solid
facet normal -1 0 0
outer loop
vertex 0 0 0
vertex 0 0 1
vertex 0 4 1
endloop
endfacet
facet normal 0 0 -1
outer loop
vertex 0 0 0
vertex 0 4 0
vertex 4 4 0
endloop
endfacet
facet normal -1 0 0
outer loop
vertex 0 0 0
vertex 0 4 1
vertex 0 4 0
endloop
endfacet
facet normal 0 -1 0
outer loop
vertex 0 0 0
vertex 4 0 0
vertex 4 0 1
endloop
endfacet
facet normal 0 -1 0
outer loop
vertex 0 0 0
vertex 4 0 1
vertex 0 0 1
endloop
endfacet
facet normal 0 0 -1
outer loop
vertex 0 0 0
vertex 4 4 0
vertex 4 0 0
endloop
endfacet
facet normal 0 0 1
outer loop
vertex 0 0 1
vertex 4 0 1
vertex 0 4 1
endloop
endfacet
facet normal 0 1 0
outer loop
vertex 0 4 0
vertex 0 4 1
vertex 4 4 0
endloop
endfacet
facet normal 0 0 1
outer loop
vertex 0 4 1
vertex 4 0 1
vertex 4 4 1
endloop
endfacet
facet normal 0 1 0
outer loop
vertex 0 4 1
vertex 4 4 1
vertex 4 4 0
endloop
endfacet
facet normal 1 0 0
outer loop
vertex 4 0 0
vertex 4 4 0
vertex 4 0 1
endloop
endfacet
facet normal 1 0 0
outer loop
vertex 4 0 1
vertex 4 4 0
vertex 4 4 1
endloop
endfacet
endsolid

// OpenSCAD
/* Warning, this is a very basic generator with a lot of approximation 
input data : [VQFN, HVC, 4x4x1.0mm, 20, , A, C04-25437A]
generated by com.zoubworld.electronics.cad.model3d.Basic
Date : Sun Feb 15 10:50:49 CET 2026
*/

//body
color("black")
translate([0,0,0])
cube([4.0,4.0,1.0], center=false);
